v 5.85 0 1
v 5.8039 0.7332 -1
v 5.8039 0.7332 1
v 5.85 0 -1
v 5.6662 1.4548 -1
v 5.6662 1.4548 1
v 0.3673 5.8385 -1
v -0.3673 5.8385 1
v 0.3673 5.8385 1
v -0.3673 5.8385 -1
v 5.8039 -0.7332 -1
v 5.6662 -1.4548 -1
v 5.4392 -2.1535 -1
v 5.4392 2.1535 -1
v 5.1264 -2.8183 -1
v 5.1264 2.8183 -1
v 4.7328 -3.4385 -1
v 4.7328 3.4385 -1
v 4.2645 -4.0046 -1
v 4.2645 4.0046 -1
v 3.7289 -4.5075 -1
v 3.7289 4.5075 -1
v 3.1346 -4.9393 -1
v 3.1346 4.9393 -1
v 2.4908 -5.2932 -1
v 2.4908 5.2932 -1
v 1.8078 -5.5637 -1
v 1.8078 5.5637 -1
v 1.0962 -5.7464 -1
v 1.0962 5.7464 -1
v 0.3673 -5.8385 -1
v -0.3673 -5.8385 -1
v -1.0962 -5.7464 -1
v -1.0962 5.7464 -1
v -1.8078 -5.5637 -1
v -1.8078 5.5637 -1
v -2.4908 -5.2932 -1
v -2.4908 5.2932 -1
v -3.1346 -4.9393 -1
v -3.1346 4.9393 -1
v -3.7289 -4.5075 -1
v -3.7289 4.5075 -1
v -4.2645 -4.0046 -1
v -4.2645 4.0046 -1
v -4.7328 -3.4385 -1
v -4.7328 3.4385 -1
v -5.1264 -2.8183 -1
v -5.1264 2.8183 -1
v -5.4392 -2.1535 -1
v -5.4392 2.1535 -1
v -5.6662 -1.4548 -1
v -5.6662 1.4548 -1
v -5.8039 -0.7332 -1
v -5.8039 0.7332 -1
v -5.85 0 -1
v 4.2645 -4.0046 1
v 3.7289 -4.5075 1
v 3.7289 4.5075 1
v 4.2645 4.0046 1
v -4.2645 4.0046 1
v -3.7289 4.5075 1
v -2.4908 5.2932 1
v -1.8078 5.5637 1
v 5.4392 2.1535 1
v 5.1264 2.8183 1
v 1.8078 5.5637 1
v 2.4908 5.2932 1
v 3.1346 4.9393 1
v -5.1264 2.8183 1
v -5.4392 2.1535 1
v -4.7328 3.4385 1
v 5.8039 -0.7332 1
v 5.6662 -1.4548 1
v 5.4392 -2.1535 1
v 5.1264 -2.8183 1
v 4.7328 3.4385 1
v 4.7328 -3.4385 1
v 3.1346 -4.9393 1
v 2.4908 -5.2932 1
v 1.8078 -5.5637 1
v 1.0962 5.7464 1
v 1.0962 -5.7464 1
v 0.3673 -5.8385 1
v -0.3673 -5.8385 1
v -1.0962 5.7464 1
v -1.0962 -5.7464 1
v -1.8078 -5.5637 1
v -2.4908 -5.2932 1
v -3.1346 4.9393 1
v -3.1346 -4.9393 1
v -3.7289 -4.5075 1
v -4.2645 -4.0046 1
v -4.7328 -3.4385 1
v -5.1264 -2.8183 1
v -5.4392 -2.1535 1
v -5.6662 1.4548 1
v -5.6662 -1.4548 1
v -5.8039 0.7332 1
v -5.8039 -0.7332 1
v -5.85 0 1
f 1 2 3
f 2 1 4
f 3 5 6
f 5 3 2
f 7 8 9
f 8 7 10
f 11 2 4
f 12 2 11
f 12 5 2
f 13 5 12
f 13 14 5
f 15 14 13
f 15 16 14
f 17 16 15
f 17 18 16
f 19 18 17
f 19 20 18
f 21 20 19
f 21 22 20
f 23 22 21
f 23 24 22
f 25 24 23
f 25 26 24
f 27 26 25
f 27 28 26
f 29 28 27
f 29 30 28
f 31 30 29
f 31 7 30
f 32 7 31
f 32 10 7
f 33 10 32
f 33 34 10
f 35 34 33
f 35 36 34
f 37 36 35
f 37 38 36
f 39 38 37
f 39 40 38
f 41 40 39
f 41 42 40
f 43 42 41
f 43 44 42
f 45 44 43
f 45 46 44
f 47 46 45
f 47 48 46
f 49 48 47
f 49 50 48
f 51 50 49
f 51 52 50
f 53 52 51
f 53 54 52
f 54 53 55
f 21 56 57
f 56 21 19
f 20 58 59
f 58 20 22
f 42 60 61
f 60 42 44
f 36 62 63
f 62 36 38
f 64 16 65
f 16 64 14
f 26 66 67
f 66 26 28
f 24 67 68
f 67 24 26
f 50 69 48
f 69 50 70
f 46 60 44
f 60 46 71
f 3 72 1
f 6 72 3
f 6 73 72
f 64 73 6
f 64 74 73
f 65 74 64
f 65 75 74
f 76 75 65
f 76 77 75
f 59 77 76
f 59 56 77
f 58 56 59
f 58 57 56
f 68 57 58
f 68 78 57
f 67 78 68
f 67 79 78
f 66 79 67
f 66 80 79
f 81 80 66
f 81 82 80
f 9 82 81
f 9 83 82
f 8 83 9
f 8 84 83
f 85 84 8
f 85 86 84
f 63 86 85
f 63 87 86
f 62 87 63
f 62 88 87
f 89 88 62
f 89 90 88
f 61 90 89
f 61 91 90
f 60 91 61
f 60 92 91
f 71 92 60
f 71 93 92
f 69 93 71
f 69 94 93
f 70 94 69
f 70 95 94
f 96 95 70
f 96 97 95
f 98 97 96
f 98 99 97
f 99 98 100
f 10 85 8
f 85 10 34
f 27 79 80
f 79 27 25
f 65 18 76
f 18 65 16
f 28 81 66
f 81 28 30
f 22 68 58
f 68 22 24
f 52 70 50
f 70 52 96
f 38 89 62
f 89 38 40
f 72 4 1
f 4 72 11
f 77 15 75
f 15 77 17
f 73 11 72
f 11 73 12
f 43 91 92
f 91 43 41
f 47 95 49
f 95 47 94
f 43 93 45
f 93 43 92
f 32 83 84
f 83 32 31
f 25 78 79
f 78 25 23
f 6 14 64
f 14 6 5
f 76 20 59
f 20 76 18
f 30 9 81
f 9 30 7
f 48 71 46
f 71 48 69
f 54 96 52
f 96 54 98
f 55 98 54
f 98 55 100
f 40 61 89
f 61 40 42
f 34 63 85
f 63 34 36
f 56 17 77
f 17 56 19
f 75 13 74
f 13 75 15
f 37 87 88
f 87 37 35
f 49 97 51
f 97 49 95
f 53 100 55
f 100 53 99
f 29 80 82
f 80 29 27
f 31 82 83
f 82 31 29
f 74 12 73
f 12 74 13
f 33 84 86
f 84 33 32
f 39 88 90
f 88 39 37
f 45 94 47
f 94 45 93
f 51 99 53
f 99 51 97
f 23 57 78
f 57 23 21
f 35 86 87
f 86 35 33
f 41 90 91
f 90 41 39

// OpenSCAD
$fn = 50;


difference() {
	union() {
		translate(v = [0, 0, -1.0000000000]) {
			cylinder(h = 2, r = 5.8500000000);
		}
	}
	union() {
		translate(v = [0, 0, -100.0000000000]) {
			cylinder(h = 200, r = 0);
		}
	}
}
